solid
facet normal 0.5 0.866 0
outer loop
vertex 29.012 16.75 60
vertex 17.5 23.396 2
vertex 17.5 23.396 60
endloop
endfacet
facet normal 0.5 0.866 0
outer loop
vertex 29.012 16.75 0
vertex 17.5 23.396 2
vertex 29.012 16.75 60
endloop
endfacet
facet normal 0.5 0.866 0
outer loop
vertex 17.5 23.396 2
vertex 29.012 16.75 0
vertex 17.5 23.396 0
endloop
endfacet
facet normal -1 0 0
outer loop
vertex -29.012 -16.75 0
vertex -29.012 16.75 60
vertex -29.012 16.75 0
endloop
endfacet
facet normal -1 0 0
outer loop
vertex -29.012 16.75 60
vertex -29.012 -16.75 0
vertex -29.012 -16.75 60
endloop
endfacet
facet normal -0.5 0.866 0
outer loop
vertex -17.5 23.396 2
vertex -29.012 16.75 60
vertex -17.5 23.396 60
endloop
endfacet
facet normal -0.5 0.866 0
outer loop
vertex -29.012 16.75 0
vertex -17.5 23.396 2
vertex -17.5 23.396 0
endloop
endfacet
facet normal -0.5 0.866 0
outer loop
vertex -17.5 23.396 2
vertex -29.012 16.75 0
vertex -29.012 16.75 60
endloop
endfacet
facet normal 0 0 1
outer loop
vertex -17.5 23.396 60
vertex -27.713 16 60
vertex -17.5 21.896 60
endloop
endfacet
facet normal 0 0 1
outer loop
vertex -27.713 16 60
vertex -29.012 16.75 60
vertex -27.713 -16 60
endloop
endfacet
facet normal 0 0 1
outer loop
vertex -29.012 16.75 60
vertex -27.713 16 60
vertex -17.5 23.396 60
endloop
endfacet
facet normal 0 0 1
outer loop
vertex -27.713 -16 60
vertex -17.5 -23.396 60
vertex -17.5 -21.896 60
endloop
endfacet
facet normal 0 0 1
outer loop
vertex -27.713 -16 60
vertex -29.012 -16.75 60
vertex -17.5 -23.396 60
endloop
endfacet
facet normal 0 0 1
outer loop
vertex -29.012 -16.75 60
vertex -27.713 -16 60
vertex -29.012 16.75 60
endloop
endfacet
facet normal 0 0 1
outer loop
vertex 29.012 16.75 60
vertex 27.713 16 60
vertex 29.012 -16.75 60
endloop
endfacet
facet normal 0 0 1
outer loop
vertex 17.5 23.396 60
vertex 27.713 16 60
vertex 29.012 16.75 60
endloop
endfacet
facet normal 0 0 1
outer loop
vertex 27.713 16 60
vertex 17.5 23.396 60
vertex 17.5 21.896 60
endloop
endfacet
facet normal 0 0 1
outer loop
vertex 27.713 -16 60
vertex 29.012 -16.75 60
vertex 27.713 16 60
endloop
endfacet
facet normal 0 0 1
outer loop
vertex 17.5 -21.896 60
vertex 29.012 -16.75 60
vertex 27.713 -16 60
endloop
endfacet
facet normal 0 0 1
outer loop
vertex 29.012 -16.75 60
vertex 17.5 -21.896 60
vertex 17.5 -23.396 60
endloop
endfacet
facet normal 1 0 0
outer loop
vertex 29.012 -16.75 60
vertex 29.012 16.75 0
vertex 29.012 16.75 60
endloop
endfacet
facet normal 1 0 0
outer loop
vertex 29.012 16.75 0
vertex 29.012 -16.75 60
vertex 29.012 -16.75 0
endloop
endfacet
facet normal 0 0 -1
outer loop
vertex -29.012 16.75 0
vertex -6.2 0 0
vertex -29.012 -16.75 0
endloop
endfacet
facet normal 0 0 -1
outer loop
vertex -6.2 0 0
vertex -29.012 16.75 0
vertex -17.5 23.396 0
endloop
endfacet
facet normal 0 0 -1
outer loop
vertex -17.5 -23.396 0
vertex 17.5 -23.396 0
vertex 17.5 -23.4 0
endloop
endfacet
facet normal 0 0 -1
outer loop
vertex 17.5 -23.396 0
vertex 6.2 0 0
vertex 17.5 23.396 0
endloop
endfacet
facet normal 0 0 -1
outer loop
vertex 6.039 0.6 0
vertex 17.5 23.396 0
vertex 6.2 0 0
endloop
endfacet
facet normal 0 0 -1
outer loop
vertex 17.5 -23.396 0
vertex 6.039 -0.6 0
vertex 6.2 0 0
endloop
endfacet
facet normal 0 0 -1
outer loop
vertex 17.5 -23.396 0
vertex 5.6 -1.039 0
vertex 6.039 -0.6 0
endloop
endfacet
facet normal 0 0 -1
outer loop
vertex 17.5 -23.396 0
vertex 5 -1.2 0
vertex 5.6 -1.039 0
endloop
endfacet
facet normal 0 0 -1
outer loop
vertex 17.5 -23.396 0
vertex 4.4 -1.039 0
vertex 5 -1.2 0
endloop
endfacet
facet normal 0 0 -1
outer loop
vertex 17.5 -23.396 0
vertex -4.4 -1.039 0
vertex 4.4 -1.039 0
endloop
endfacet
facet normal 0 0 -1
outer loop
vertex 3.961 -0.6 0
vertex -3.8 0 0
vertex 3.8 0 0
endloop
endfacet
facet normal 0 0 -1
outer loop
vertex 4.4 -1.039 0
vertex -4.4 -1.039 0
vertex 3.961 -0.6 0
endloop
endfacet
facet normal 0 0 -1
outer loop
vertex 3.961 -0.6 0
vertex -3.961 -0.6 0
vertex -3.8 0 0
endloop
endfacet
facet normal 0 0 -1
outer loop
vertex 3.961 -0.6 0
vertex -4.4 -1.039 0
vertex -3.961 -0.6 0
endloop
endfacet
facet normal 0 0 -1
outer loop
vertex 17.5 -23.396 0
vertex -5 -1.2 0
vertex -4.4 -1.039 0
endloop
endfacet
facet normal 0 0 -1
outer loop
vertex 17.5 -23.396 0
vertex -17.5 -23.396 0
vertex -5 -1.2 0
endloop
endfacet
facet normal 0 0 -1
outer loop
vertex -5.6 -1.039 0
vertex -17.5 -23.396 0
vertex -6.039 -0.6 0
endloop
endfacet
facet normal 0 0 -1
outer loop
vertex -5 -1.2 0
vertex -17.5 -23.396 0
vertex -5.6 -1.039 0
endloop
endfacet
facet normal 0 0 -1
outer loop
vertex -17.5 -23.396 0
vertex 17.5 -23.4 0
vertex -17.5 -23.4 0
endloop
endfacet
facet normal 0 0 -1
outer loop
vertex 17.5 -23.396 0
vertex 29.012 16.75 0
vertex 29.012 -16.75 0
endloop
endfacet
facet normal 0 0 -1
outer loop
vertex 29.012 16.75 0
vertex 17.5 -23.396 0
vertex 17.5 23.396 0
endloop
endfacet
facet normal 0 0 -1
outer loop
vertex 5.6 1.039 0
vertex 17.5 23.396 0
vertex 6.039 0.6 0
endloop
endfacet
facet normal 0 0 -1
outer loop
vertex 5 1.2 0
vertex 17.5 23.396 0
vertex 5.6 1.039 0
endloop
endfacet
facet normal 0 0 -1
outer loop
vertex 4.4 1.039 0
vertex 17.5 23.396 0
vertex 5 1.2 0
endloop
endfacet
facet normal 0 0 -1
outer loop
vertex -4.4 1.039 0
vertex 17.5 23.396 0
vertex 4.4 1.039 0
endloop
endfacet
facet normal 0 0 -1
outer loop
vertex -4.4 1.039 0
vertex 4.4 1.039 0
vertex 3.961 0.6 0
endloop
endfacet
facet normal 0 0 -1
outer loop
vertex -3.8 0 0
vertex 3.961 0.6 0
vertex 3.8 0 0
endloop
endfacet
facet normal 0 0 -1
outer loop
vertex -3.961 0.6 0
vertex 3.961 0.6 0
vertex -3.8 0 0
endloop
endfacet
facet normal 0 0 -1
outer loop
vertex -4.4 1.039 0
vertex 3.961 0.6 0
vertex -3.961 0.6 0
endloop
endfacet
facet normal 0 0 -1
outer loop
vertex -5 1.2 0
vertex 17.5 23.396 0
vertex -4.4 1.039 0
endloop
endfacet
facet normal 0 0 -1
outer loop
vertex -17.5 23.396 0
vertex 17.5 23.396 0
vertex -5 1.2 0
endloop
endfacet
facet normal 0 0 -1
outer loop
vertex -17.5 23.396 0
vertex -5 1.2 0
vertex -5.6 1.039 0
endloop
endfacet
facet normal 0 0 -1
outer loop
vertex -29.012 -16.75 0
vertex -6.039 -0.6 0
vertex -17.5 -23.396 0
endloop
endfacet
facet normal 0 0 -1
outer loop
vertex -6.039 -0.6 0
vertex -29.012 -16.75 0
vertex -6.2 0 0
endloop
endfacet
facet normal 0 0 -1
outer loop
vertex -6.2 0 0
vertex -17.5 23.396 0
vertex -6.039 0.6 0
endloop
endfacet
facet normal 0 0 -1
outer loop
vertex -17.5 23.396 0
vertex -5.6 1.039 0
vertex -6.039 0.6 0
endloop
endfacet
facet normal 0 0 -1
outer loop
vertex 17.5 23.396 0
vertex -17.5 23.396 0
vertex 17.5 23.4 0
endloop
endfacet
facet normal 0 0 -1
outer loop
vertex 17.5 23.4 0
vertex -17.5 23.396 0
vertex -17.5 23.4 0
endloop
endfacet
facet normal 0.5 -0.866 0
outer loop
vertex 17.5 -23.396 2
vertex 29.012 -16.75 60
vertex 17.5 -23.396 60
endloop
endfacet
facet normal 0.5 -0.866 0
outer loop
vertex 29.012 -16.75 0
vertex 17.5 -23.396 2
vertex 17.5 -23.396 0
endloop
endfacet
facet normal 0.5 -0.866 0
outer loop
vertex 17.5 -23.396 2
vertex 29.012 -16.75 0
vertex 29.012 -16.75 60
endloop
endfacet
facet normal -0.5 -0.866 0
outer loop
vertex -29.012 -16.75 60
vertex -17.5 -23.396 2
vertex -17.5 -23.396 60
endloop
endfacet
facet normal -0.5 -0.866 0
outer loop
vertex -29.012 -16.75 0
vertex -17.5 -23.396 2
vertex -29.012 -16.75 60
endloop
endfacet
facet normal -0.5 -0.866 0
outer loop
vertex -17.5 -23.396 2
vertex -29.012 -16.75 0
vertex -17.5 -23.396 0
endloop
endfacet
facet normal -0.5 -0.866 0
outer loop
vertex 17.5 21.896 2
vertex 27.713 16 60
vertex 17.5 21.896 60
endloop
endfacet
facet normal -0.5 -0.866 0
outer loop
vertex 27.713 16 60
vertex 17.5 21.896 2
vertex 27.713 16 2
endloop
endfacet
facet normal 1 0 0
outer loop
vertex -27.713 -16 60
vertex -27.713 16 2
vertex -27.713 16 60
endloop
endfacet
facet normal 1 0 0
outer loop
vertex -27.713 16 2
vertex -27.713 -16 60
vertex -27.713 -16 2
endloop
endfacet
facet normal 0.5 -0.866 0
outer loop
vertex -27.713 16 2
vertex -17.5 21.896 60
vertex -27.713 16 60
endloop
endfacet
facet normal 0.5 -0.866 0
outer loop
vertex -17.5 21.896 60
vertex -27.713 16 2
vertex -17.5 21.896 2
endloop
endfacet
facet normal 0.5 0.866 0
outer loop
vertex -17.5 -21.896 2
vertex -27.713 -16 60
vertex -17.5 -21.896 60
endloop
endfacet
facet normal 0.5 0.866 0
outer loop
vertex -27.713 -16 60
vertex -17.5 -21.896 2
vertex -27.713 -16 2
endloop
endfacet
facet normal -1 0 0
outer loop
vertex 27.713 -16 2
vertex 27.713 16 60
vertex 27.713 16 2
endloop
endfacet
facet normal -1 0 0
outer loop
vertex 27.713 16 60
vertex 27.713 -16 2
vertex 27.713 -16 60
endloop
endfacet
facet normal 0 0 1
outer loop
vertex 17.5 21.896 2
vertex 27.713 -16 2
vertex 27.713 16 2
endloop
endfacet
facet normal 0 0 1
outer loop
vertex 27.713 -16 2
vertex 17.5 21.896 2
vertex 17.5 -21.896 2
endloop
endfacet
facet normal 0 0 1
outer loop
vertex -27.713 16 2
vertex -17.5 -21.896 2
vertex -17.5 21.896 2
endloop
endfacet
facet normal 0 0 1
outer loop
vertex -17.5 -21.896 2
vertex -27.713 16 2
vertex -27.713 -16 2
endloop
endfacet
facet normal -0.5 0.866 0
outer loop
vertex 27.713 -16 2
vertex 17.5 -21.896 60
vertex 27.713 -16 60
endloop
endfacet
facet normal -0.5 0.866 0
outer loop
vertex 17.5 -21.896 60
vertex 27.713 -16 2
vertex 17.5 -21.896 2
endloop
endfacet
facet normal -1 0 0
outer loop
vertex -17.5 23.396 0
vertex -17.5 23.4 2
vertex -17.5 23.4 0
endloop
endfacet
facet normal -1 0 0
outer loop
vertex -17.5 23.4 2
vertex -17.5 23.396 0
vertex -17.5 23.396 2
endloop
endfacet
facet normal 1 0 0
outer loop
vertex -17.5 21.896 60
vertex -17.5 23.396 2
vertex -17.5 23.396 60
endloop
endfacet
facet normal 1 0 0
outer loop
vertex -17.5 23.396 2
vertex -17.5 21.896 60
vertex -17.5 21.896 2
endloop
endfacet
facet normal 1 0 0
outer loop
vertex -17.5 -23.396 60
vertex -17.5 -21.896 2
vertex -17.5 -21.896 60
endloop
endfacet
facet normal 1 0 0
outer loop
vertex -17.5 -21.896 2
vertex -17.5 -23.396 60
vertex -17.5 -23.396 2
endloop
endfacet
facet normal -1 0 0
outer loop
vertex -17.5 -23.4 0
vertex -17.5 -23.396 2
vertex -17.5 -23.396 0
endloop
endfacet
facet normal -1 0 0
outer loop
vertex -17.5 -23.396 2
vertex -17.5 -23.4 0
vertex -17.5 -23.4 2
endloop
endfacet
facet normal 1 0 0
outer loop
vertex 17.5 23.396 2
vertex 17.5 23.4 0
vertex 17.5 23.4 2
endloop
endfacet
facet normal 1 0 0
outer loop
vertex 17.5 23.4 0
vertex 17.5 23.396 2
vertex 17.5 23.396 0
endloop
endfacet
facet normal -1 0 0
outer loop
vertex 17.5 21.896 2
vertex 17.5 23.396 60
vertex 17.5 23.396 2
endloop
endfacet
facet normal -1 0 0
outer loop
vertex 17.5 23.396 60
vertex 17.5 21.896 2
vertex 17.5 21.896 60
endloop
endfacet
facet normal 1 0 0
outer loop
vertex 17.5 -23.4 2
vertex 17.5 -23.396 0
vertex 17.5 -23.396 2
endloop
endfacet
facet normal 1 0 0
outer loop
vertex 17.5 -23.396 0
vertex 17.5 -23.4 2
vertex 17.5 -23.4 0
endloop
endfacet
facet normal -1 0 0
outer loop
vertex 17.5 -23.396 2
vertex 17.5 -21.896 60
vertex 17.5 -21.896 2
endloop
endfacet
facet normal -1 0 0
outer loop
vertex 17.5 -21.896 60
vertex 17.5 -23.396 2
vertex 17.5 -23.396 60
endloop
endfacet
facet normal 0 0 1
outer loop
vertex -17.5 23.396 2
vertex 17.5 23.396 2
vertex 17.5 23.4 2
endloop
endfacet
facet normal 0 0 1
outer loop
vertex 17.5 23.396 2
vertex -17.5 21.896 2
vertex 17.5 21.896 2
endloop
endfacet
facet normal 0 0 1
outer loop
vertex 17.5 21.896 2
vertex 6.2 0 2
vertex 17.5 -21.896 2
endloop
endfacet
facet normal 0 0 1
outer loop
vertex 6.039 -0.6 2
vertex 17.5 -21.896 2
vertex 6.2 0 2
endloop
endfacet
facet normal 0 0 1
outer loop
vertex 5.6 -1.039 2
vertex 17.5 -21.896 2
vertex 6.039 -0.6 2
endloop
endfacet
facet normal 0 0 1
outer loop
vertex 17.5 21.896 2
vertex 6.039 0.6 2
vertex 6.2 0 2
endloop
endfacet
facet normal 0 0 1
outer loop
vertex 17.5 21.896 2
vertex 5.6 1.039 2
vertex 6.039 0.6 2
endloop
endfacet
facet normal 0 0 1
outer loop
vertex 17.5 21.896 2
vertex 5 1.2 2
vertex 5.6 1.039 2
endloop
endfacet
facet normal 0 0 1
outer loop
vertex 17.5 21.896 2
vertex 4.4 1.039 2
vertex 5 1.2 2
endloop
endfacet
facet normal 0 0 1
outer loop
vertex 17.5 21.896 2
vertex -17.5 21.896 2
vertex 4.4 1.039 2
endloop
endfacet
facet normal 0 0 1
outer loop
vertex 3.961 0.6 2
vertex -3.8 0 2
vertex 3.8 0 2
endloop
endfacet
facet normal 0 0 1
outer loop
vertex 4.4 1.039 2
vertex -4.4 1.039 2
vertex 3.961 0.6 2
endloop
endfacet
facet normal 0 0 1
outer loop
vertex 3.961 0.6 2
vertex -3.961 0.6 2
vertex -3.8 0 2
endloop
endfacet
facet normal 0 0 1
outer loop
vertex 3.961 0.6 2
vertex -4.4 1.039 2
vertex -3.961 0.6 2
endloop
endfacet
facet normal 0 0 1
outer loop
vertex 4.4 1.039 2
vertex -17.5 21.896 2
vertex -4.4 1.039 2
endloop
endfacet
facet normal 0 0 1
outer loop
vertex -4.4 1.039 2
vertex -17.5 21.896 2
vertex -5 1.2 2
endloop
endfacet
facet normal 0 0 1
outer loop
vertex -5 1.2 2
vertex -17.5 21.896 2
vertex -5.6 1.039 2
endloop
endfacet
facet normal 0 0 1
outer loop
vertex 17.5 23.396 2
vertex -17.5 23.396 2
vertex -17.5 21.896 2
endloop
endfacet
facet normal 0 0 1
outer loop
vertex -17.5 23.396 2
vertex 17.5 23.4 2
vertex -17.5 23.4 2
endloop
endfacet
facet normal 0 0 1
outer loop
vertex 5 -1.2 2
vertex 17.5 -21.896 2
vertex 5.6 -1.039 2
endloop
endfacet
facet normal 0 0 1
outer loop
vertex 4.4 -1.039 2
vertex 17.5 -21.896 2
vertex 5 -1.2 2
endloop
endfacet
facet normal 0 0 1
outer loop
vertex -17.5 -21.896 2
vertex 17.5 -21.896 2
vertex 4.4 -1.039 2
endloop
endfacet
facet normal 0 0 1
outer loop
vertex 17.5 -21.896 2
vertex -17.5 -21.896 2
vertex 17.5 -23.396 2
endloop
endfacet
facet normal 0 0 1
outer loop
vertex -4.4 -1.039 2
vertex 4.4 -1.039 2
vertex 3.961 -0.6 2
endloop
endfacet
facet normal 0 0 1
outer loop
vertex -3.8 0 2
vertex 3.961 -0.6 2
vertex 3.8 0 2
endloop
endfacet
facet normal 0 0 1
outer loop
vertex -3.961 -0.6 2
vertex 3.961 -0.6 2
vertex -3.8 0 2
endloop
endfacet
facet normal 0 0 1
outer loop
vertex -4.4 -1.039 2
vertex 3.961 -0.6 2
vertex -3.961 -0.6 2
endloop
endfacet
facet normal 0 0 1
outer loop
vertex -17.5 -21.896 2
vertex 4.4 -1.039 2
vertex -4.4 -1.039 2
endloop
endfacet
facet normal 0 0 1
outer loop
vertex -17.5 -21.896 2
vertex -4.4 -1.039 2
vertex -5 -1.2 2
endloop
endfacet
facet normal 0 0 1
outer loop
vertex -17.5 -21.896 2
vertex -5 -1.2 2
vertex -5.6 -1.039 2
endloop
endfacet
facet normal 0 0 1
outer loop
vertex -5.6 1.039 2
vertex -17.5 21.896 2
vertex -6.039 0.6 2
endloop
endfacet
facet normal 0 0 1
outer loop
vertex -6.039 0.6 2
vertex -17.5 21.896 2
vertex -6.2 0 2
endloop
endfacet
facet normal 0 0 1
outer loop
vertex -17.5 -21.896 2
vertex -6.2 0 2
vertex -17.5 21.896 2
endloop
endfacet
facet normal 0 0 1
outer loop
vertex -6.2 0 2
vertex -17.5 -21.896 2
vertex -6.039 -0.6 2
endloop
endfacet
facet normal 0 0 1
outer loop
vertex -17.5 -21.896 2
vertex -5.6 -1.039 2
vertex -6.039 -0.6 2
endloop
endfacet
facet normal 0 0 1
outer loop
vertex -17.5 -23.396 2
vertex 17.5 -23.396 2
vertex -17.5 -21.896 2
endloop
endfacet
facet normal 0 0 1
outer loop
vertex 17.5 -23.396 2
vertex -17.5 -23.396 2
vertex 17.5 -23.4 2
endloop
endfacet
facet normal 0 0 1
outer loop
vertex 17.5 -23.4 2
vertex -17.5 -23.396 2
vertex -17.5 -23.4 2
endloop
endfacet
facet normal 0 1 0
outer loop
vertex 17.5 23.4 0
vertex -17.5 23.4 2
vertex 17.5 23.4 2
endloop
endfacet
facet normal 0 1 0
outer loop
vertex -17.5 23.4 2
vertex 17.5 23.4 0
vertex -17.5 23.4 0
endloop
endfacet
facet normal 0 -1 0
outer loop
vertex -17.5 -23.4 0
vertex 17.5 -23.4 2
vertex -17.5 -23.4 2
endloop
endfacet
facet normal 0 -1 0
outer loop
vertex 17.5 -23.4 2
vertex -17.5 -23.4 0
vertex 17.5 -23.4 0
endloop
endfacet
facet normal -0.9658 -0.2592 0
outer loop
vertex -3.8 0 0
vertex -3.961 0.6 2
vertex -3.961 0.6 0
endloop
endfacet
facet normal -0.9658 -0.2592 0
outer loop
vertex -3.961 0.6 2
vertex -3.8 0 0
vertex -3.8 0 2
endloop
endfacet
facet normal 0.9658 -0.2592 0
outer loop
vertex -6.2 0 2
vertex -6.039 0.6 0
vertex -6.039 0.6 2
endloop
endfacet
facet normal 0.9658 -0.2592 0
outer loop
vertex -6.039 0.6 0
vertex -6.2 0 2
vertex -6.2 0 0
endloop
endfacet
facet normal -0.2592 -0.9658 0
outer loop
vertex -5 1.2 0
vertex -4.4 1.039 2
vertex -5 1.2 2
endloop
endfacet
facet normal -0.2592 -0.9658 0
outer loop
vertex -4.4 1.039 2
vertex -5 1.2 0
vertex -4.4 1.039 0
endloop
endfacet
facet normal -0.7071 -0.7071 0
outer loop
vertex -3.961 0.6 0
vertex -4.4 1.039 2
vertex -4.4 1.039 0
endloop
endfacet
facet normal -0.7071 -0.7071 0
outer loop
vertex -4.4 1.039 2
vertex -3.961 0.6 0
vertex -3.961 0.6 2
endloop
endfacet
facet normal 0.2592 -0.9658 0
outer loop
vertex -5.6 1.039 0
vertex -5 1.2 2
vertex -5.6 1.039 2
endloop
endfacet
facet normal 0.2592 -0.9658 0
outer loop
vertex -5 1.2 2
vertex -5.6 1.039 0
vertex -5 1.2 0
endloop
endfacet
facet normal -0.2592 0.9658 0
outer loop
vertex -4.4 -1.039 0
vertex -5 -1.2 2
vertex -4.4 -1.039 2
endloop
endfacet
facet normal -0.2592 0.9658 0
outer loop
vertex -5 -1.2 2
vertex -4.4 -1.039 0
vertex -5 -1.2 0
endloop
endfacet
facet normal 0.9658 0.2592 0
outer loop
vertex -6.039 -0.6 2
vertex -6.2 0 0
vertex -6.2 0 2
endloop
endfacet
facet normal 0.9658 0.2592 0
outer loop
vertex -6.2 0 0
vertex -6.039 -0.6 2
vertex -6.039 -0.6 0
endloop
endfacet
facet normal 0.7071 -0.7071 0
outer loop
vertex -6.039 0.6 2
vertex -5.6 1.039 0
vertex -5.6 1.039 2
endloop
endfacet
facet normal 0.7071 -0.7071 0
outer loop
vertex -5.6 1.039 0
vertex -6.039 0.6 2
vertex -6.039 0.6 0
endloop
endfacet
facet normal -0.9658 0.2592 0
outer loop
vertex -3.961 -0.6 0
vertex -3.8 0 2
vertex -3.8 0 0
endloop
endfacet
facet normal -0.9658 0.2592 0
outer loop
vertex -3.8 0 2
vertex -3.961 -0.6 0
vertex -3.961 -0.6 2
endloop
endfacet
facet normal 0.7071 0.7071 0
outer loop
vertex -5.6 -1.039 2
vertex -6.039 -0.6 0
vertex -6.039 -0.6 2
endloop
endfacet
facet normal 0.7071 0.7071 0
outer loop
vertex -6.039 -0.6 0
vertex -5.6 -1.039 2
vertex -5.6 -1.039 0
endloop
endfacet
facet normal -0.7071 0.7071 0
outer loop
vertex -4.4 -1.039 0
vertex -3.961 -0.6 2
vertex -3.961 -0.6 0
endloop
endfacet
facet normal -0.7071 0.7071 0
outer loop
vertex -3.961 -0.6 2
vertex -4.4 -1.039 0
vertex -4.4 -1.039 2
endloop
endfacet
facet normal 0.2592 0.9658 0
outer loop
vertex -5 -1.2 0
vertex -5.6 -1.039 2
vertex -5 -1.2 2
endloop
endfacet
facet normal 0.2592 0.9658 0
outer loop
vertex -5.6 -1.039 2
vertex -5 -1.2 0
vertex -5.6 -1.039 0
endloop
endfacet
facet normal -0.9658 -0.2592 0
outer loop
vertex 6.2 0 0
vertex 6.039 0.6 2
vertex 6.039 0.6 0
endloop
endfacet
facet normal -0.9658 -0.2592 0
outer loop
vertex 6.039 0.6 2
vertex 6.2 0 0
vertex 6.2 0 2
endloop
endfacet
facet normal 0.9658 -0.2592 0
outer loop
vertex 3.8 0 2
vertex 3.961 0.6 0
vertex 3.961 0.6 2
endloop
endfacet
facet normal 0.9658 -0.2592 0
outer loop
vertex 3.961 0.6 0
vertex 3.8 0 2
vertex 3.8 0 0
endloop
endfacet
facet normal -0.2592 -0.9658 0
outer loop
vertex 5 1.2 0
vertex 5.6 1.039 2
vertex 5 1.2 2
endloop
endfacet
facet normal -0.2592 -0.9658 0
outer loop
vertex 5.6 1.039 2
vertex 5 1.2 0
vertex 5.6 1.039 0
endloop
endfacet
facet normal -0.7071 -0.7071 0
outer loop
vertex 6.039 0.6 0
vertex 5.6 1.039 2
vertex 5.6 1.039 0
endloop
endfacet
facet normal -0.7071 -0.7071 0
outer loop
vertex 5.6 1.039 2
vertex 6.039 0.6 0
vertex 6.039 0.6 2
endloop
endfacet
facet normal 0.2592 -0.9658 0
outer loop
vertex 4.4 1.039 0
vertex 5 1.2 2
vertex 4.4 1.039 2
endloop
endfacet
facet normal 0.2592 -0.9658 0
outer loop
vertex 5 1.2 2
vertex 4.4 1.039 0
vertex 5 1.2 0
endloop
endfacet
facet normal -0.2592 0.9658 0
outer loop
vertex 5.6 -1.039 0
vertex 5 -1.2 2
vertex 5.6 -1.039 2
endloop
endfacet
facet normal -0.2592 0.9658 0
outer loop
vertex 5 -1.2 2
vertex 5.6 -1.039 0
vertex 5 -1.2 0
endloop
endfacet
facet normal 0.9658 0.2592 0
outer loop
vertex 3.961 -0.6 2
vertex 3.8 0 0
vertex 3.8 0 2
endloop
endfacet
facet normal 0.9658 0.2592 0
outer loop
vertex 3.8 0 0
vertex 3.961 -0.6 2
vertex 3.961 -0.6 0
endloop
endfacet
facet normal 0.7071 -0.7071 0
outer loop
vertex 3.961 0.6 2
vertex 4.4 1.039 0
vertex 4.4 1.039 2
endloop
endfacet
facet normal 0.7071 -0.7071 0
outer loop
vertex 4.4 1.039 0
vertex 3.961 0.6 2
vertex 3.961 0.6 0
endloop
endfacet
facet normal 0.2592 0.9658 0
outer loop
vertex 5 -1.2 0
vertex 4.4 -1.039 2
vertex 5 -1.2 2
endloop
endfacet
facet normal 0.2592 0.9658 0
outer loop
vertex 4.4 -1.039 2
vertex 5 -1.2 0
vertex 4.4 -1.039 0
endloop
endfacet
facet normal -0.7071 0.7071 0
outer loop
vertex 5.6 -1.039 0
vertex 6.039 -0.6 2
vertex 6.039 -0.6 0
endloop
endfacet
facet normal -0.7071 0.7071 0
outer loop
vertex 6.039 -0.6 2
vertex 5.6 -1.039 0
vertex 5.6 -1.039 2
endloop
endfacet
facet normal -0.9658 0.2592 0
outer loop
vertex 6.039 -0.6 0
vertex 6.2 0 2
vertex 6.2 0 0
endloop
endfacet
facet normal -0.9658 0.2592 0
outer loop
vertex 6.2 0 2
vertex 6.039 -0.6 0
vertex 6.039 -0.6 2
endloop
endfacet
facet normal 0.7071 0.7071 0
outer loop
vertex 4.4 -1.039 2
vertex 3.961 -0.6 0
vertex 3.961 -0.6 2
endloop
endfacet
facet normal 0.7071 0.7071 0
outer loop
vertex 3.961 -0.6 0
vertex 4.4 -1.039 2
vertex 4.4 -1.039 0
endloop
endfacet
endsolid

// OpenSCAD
difference(){
    rotate([0,0,30])
    cylinder(d=67,h=60,$fn=6);
    rotate([0,0,30])translate([0,0,2])
    cylinder(d=64,h=65,$fn=6);
    translate([0,0,25])cube([35,70,72],center=true);
}

$fn=12;

difference(){
translate([0,0,1])
cube([35,46.8,2],center=true);
translate([-5,0,0])cylinder(d=2.4,h=6);
translate([5,0,0])cylinder(d=2.4,h=6);
}
